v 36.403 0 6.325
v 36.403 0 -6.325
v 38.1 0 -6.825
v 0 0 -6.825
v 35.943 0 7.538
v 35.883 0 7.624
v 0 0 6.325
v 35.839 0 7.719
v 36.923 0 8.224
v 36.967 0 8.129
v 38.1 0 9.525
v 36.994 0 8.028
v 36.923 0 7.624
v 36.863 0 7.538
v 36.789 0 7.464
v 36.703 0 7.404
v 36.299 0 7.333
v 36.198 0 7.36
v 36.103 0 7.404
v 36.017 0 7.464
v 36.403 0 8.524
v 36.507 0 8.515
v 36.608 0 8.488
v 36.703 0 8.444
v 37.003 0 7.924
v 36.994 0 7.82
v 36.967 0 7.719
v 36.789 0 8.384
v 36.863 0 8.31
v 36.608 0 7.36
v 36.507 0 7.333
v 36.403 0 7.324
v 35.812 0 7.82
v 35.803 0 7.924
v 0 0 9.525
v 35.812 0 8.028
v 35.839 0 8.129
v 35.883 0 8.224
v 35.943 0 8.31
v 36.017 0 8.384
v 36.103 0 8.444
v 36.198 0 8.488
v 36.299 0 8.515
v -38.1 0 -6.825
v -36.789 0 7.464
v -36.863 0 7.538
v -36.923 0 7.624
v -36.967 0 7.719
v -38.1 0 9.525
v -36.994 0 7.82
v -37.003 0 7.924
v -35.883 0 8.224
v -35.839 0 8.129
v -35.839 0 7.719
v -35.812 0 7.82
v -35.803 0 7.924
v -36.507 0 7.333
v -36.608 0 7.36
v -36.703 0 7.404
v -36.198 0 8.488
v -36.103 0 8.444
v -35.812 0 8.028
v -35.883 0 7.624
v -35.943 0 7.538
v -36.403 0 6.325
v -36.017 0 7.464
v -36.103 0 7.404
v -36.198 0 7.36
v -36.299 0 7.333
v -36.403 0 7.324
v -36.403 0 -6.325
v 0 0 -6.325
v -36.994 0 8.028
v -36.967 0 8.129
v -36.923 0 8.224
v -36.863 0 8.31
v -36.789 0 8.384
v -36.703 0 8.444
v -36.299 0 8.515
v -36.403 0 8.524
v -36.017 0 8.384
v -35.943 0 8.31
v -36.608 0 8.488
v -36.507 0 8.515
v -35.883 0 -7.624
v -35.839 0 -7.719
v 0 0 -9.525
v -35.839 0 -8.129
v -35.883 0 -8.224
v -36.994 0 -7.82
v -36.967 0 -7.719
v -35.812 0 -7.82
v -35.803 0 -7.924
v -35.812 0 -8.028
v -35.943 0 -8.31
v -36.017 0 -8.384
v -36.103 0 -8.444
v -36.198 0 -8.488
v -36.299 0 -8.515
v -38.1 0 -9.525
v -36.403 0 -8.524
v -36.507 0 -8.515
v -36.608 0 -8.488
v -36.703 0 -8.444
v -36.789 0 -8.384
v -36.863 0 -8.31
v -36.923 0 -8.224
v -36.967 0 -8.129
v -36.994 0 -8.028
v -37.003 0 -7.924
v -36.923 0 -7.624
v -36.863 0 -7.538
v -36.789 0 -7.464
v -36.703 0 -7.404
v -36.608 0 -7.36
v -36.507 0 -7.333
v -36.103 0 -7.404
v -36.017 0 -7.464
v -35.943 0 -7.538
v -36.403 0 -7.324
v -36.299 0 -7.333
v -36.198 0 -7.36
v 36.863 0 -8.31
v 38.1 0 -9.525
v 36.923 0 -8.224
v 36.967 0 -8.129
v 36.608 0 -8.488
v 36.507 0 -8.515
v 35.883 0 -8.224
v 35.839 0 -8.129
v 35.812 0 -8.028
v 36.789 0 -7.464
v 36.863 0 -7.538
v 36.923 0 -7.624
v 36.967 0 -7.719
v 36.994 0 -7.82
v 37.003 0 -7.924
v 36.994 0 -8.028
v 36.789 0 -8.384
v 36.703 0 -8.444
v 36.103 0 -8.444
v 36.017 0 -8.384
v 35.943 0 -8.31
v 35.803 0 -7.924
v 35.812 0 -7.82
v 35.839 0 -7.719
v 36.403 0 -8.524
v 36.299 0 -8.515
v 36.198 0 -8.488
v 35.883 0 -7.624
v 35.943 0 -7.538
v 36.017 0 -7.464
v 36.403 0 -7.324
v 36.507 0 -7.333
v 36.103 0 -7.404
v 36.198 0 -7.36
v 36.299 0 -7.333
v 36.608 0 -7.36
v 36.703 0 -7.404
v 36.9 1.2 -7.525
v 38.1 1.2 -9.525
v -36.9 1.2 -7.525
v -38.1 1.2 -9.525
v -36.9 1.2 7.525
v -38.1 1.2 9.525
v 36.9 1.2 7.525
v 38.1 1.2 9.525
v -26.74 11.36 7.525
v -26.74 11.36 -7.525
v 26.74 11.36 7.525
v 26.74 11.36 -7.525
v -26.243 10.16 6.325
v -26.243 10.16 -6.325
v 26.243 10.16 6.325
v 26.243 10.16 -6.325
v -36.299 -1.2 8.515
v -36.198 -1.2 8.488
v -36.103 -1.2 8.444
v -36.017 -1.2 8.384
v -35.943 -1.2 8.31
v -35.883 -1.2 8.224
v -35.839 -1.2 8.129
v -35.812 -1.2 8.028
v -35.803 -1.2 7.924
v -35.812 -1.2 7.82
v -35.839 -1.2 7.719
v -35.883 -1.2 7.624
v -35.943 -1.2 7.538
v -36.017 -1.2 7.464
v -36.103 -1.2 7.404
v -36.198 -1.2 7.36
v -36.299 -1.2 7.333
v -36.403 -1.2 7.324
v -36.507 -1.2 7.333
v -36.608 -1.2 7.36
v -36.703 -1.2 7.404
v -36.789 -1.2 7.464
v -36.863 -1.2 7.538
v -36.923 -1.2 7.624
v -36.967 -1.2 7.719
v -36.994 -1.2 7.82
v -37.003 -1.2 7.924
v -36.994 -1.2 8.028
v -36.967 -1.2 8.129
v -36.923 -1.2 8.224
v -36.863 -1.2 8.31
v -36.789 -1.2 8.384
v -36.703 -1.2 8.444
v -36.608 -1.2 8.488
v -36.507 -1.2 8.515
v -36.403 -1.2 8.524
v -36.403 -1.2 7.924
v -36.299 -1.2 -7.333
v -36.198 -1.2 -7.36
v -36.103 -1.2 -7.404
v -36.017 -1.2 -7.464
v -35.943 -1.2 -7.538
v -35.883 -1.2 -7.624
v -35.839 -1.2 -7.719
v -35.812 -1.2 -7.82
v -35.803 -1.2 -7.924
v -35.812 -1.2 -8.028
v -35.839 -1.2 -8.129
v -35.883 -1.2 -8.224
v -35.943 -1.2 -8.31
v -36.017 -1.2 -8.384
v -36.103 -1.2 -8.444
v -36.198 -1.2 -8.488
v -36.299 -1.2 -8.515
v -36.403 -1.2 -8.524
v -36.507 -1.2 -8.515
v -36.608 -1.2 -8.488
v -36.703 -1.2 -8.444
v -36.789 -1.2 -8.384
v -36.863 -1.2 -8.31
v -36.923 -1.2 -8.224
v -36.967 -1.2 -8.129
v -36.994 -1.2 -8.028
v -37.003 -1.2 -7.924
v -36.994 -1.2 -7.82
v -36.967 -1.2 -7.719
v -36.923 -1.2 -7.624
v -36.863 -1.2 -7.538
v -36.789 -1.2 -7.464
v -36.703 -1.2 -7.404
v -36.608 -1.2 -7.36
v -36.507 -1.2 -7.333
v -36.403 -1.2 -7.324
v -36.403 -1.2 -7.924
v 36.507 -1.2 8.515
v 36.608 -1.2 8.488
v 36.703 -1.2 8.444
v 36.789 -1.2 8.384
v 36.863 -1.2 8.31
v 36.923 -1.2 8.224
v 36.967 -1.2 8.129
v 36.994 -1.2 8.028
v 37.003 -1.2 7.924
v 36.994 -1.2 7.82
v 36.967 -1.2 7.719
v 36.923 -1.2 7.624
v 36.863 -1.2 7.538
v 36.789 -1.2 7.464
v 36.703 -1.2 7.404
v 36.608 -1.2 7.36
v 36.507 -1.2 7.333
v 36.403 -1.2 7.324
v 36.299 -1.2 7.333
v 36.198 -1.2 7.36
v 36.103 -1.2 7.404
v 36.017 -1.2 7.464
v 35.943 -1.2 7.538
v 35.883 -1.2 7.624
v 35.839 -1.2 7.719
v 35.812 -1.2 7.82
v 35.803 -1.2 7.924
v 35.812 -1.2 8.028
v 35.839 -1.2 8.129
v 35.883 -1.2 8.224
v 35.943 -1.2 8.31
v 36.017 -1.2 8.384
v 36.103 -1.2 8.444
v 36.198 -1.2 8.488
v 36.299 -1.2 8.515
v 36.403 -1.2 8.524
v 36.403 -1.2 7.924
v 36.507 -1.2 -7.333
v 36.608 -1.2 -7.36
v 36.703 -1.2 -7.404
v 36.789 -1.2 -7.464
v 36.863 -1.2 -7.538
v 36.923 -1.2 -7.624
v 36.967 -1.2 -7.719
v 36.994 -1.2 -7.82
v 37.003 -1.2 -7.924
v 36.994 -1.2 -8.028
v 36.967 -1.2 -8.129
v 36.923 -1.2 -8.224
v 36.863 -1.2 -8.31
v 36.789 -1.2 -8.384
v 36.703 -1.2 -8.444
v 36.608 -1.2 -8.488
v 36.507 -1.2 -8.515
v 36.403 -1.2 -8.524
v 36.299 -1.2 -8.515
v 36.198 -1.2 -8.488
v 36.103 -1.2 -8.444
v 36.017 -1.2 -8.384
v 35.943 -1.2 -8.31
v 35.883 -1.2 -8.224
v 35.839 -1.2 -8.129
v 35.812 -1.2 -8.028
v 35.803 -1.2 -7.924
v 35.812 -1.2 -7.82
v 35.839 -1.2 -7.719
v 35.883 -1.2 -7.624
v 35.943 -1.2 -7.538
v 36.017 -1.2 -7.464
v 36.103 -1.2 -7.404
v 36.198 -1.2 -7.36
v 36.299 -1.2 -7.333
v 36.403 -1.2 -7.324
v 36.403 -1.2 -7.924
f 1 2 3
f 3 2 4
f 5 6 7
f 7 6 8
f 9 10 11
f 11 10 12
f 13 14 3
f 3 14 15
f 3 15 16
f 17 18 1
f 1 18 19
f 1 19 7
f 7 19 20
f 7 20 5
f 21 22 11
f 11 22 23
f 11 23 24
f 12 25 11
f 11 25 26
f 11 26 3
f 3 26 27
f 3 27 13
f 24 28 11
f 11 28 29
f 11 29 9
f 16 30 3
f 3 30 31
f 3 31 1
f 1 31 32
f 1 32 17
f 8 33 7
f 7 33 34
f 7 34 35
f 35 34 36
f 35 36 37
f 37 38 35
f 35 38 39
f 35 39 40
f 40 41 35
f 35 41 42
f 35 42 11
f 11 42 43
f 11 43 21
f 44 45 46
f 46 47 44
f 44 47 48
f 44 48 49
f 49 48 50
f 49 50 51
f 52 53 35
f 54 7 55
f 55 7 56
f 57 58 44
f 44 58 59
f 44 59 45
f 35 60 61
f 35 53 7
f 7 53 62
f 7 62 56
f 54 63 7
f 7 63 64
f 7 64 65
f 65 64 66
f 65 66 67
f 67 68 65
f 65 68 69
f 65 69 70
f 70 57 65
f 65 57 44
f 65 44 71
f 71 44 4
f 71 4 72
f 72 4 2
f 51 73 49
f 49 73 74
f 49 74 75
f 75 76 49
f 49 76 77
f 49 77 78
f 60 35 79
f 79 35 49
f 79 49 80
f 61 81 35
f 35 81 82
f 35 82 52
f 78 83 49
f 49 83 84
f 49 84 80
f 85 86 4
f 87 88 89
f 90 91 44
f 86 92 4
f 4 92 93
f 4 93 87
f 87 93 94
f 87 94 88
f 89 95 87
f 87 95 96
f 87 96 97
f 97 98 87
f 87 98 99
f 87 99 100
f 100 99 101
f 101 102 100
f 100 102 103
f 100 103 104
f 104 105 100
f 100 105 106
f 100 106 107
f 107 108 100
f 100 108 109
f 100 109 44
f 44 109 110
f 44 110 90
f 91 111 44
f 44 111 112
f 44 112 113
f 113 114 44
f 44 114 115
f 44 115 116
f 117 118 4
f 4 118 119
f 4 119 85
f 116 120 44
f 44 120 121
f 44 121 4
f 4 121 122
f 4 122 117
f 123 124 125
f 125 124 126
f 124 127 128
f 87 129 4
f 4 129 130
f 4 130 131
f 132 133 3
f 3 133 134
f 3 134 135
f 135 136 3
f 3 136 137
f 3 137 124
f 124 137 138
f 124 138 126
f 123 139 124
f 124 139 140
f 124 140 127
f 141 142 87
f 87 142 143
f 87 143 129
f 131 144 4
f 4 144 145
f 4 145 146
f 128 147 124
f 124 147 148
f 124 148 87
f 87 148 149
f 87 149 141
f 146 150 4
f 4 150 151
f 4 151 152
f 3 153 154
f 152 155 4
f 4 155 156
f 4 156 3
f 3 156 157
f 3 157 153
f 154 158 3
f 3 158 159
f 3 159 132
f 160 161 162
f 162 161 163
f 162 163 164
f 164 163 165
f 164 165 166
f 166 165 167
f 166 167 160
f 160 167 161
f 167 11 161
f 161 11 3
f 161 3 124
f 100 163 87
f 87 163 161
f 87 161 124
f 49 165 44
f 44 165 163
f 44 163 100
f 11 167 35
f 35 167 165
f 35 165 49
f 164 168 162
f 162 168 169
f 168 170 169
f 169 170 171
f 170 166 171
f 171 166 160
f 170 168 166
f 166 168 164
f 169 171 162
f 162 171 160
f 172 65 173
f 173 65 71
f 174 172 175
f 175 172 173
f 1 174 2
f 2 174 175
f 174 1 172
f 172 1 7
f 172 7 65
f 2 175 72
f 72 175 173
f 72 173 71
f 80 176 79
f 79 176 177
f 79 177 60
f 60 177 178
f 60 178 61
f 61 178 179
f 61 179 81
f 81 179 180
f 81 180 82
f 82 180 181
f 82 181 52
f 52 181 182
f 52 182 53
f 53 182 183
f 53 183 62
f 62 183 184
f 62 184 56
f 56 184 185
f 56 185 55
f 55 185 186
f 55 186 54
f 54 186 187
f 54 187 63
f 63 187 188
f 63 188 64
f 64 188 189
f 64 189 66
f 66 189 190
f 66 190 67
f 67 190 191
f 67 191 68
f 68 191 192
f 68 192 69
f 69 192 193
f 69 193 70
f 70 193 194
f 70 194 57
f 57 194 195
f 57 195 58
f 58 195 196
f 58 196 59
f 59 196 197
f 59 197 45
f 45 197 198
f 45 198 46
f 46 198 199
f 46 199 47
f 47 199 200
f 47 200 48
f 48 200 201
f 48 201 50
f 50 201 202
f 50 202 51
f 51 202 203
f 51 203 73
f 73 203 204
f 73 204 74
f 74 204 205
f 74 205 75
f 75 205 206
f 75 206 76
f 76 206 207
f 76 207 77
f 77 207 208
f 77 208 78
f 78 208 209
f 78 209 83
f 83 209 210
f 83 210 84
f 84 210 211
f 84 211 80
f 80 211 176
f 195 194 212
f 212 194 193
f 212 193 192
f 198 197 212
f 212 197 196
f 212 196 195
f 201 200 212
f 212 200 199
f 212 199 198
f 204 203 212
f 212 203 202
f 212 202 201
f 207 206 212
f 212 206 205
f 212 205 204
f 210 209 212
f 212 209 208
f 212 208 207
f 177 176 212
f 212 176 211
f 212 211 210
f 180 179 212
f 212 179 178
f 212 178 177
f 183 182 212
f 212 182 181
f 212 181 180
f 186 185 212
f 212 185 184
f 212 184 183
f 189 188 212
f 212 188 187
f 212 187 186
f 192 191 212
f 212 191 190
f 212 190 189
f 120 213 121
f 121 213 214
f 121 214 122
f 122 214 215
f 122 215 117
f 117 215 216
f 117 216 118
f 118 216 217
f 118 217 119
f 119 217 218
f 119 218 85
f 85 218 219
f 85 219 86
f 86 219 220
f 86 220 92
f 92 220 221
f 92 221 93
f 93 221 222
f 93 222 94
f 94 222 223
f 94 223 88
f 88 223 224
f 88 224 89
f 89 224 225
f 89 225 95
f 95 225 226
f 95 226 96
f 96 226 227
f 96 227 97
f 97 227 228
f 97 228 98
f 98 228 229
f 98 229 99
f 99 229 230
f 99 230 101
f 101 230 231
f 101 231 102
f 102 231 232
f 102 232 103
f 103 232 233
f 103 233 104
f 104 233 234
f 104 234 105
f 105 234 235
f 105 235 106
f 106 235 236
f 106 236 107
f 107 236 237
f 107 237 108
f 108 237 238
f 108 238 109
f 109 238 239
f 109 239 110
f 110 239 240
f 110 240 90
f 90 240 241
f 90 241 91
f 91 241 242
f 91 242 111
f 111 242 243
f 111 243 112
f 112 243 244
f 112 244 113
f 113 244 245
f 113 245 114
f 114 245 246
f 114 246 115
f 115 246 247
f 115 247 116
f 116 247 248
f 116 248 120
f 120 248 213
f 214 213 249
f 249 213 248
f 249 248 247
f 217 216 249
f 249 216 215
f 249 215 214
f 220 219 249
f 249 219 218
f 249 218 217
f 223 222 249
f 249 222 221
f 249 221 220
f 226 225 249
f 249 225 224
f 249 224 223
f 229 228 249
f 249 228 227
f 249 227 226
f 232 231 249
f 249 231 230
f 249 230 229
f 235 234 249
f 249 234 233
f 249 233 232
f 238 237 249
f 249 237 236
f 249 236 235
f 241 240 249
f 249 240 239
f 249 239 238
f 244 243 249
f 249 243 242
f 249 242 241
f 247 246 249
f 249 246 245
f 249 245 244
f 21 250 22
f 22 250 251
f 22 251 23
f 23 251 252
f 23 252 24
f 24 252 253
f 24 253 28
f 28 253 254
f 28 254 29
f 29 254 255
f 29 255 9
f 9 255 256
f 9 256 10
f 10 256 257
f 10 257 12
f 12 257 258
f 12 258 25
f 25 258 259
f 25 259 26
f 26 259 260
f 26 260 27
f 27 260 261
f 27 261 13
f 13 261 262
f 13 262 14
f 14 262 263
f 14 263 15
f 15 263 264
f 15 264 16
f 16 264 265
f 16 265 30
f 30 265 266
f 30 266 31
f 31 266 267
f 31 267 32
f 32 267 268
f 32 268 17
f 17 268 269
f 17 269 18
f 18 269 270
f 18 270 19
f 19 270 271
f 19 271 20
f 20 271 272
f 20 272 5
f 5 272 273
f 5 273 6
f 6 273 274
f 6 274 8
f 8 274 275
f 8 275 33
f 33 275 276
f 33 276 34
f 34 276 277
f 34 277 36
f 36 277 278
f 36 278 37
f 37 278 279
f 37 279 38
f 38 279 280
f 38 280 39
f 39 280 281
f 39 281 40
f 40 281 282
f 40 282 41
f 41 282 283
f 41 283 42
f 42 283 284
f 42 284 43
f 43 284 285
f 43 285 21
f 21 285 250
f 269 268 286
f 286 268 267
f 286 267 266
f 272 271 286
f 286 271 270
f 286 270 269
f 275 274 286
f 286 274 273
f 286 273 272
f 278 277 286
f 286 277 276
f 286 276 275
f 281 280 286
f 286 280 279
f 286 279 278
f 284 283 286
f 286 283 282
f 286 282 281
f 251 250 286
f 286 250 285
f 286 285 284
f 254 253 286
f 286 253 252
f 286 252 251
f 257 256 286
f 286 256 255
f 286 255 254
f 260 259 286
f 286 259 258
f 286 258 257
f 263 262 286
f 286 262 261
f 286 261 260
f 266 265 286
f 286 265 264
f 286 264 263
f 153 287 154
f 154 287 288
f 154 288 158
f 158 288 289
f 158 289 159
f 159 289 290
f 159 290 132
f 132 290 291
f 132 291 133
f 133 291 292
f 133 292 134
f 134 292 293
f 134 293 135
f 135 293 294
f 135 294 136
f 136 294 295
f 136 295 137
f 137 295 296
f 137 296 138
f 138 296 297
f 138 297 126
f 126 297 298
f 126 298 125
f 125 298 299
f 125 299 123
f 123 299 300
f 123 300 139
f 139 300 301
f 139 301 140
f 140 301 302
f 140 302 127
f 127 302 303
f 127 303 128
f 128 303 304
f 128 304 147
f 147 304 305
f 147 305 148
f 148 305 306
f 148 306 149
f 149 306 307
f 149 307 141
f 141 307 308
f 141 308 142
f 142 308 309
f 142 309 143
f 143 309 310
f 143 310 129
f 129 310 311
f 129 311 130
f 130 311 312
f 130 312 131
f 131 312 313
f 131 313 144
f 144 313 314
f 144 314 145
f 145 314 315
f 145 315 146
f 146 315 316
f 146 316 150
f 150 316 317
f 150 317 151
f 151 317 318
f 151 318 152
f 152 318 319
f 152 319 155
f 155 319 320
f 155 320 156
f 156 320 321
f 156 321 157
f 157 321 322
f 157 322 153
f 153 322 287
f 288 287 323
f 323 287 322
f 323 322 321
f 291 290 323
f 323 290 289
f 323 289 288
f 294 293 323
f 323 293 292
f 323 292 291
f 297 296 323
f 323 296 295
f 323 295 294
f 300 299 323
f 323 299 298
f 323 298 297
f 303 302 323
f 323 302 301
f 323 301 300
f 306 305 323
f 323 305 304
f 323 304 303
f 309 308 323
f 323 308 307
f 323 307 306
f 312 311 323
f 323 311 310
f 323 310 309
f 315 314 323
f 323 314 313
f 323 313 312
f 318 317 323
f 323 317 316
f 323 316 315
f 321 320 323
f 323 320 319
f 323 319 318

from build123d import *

# Parameters (mm, degrees)
SKETCH1_W               = 76.2
SKETCH1_H               = 19.05
BOSS_EXTRUDE1_DEPTH     = 1.2
BOSS_EXTRUDE2_START     = -2
BOSS_EXTRUDE2_DEPTH     = 15.05
SHELL1_START            = -6.325
SHELL1_DEPTH            = 12.65
SKETCH3_R               = 0.6
BOSS_EXTRUDE3_DEPTH     = 1.2
MIRROR2_COPY_1_SKETCH_R = 0.6
MIRROR2_COPY_1_DEPTH    = 1.2


# Read off the part's stored shape, not the designer's step: Shell1
with BuildPart() as part:
    # Sketch1 → Boss-Extrude1 (new body)
    with BuildSketch(Plane(origin=(0, 0, 0), x_dir=(1, 0, 0), z_dir=(0, 1, 0))):
        Rectangle(SKETCH1_W, SKETCH1_H)
    extrude(amount=BOSS_EXTRUDE1_DEPTH)

    # Sketch2 → Boss-Extrude2 (add)
    with BuildSketch(Plane.XY.offset(9.525).offset(BOSS_EXTRUDE2_START)):
        Polygon((-36.9, 1.2), (-26.74, 11.36), (26.74, 11.36), (36.9, 1.2), align=None)
    extrude(amount=-BOSS_EXTRUDE2_DEPTH)

    # Shell1 outline → Shell1 (cut)
    with BuildSketch(Plane.XY.offset(SHELL1_START)):
        Polygon((26.242943725, 10.16), (-26.242943725, 10.16), (-36.402943725, 0), (36.402943725, 0), align=None)
    extrude(amount=SHELL1_DEPTH, mode=Mode.SUBTRACT)

    # Sketch3 → Boss-Extrude3 (add)
    with BuildSketch(Plane.XZ):
        with Locations(Location((-36.402943725, 7.924066334, 0), (0, 0, 90))):
            Circle(SKETCH3_R)
    boss_extrude3 = extrude(amount=BOSS_EXTRUDE3_DEPTH)

    # Mirror1: Boss-Extrude3 across plane
    add(boss_extrude3.mirror(Plane.XY))

    # Mirror2: Boss-Extrude3 across plane
    add(boss_extrude3.mirror(Plane(origin=(0, 0, 0), x_dir=(0, 0, 1), z_dir=(1, 0, 0))))

    # Mirror2 copy 1 sketch → Mirror2 copy 1 (add)
    with BuildSketch(Plane(origin=(0, 0, 0), x_dir=(-1, 0, 0), z_dir=(0, -1, 0))):
        with Locations(Location((-36.402943725, 7.924066334, 0), (0, 0, 90))):
            Circle(MIRROR2_COPY_1_SKETCH_R)
    extrude(amount=MIRROR2_COPY_1_DEPTH)


solid = part.part
